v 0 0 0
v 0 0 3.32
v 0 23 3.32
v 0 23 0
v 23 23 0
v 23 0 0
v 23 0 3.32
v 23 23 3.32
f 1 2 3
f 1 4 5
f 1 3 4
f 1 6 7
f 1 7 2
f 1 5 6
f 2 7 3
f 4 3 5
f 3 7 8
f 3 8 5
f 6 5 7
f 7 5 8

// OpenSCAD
/* Warning, this is a very basic generator with a lot of approximation 
input data : [BBGA, CPC, 23x23x3.32mm, 480, , A, C04-25215A]
generated by com.zoubworld.electronics.cad.model3d.Basic
Date : Sun Feb 15 10:50:49 CET 2026
*/

//body
color("black")
translate([0,0,0])
cube([23.0,23.0,3.32], center=false);
